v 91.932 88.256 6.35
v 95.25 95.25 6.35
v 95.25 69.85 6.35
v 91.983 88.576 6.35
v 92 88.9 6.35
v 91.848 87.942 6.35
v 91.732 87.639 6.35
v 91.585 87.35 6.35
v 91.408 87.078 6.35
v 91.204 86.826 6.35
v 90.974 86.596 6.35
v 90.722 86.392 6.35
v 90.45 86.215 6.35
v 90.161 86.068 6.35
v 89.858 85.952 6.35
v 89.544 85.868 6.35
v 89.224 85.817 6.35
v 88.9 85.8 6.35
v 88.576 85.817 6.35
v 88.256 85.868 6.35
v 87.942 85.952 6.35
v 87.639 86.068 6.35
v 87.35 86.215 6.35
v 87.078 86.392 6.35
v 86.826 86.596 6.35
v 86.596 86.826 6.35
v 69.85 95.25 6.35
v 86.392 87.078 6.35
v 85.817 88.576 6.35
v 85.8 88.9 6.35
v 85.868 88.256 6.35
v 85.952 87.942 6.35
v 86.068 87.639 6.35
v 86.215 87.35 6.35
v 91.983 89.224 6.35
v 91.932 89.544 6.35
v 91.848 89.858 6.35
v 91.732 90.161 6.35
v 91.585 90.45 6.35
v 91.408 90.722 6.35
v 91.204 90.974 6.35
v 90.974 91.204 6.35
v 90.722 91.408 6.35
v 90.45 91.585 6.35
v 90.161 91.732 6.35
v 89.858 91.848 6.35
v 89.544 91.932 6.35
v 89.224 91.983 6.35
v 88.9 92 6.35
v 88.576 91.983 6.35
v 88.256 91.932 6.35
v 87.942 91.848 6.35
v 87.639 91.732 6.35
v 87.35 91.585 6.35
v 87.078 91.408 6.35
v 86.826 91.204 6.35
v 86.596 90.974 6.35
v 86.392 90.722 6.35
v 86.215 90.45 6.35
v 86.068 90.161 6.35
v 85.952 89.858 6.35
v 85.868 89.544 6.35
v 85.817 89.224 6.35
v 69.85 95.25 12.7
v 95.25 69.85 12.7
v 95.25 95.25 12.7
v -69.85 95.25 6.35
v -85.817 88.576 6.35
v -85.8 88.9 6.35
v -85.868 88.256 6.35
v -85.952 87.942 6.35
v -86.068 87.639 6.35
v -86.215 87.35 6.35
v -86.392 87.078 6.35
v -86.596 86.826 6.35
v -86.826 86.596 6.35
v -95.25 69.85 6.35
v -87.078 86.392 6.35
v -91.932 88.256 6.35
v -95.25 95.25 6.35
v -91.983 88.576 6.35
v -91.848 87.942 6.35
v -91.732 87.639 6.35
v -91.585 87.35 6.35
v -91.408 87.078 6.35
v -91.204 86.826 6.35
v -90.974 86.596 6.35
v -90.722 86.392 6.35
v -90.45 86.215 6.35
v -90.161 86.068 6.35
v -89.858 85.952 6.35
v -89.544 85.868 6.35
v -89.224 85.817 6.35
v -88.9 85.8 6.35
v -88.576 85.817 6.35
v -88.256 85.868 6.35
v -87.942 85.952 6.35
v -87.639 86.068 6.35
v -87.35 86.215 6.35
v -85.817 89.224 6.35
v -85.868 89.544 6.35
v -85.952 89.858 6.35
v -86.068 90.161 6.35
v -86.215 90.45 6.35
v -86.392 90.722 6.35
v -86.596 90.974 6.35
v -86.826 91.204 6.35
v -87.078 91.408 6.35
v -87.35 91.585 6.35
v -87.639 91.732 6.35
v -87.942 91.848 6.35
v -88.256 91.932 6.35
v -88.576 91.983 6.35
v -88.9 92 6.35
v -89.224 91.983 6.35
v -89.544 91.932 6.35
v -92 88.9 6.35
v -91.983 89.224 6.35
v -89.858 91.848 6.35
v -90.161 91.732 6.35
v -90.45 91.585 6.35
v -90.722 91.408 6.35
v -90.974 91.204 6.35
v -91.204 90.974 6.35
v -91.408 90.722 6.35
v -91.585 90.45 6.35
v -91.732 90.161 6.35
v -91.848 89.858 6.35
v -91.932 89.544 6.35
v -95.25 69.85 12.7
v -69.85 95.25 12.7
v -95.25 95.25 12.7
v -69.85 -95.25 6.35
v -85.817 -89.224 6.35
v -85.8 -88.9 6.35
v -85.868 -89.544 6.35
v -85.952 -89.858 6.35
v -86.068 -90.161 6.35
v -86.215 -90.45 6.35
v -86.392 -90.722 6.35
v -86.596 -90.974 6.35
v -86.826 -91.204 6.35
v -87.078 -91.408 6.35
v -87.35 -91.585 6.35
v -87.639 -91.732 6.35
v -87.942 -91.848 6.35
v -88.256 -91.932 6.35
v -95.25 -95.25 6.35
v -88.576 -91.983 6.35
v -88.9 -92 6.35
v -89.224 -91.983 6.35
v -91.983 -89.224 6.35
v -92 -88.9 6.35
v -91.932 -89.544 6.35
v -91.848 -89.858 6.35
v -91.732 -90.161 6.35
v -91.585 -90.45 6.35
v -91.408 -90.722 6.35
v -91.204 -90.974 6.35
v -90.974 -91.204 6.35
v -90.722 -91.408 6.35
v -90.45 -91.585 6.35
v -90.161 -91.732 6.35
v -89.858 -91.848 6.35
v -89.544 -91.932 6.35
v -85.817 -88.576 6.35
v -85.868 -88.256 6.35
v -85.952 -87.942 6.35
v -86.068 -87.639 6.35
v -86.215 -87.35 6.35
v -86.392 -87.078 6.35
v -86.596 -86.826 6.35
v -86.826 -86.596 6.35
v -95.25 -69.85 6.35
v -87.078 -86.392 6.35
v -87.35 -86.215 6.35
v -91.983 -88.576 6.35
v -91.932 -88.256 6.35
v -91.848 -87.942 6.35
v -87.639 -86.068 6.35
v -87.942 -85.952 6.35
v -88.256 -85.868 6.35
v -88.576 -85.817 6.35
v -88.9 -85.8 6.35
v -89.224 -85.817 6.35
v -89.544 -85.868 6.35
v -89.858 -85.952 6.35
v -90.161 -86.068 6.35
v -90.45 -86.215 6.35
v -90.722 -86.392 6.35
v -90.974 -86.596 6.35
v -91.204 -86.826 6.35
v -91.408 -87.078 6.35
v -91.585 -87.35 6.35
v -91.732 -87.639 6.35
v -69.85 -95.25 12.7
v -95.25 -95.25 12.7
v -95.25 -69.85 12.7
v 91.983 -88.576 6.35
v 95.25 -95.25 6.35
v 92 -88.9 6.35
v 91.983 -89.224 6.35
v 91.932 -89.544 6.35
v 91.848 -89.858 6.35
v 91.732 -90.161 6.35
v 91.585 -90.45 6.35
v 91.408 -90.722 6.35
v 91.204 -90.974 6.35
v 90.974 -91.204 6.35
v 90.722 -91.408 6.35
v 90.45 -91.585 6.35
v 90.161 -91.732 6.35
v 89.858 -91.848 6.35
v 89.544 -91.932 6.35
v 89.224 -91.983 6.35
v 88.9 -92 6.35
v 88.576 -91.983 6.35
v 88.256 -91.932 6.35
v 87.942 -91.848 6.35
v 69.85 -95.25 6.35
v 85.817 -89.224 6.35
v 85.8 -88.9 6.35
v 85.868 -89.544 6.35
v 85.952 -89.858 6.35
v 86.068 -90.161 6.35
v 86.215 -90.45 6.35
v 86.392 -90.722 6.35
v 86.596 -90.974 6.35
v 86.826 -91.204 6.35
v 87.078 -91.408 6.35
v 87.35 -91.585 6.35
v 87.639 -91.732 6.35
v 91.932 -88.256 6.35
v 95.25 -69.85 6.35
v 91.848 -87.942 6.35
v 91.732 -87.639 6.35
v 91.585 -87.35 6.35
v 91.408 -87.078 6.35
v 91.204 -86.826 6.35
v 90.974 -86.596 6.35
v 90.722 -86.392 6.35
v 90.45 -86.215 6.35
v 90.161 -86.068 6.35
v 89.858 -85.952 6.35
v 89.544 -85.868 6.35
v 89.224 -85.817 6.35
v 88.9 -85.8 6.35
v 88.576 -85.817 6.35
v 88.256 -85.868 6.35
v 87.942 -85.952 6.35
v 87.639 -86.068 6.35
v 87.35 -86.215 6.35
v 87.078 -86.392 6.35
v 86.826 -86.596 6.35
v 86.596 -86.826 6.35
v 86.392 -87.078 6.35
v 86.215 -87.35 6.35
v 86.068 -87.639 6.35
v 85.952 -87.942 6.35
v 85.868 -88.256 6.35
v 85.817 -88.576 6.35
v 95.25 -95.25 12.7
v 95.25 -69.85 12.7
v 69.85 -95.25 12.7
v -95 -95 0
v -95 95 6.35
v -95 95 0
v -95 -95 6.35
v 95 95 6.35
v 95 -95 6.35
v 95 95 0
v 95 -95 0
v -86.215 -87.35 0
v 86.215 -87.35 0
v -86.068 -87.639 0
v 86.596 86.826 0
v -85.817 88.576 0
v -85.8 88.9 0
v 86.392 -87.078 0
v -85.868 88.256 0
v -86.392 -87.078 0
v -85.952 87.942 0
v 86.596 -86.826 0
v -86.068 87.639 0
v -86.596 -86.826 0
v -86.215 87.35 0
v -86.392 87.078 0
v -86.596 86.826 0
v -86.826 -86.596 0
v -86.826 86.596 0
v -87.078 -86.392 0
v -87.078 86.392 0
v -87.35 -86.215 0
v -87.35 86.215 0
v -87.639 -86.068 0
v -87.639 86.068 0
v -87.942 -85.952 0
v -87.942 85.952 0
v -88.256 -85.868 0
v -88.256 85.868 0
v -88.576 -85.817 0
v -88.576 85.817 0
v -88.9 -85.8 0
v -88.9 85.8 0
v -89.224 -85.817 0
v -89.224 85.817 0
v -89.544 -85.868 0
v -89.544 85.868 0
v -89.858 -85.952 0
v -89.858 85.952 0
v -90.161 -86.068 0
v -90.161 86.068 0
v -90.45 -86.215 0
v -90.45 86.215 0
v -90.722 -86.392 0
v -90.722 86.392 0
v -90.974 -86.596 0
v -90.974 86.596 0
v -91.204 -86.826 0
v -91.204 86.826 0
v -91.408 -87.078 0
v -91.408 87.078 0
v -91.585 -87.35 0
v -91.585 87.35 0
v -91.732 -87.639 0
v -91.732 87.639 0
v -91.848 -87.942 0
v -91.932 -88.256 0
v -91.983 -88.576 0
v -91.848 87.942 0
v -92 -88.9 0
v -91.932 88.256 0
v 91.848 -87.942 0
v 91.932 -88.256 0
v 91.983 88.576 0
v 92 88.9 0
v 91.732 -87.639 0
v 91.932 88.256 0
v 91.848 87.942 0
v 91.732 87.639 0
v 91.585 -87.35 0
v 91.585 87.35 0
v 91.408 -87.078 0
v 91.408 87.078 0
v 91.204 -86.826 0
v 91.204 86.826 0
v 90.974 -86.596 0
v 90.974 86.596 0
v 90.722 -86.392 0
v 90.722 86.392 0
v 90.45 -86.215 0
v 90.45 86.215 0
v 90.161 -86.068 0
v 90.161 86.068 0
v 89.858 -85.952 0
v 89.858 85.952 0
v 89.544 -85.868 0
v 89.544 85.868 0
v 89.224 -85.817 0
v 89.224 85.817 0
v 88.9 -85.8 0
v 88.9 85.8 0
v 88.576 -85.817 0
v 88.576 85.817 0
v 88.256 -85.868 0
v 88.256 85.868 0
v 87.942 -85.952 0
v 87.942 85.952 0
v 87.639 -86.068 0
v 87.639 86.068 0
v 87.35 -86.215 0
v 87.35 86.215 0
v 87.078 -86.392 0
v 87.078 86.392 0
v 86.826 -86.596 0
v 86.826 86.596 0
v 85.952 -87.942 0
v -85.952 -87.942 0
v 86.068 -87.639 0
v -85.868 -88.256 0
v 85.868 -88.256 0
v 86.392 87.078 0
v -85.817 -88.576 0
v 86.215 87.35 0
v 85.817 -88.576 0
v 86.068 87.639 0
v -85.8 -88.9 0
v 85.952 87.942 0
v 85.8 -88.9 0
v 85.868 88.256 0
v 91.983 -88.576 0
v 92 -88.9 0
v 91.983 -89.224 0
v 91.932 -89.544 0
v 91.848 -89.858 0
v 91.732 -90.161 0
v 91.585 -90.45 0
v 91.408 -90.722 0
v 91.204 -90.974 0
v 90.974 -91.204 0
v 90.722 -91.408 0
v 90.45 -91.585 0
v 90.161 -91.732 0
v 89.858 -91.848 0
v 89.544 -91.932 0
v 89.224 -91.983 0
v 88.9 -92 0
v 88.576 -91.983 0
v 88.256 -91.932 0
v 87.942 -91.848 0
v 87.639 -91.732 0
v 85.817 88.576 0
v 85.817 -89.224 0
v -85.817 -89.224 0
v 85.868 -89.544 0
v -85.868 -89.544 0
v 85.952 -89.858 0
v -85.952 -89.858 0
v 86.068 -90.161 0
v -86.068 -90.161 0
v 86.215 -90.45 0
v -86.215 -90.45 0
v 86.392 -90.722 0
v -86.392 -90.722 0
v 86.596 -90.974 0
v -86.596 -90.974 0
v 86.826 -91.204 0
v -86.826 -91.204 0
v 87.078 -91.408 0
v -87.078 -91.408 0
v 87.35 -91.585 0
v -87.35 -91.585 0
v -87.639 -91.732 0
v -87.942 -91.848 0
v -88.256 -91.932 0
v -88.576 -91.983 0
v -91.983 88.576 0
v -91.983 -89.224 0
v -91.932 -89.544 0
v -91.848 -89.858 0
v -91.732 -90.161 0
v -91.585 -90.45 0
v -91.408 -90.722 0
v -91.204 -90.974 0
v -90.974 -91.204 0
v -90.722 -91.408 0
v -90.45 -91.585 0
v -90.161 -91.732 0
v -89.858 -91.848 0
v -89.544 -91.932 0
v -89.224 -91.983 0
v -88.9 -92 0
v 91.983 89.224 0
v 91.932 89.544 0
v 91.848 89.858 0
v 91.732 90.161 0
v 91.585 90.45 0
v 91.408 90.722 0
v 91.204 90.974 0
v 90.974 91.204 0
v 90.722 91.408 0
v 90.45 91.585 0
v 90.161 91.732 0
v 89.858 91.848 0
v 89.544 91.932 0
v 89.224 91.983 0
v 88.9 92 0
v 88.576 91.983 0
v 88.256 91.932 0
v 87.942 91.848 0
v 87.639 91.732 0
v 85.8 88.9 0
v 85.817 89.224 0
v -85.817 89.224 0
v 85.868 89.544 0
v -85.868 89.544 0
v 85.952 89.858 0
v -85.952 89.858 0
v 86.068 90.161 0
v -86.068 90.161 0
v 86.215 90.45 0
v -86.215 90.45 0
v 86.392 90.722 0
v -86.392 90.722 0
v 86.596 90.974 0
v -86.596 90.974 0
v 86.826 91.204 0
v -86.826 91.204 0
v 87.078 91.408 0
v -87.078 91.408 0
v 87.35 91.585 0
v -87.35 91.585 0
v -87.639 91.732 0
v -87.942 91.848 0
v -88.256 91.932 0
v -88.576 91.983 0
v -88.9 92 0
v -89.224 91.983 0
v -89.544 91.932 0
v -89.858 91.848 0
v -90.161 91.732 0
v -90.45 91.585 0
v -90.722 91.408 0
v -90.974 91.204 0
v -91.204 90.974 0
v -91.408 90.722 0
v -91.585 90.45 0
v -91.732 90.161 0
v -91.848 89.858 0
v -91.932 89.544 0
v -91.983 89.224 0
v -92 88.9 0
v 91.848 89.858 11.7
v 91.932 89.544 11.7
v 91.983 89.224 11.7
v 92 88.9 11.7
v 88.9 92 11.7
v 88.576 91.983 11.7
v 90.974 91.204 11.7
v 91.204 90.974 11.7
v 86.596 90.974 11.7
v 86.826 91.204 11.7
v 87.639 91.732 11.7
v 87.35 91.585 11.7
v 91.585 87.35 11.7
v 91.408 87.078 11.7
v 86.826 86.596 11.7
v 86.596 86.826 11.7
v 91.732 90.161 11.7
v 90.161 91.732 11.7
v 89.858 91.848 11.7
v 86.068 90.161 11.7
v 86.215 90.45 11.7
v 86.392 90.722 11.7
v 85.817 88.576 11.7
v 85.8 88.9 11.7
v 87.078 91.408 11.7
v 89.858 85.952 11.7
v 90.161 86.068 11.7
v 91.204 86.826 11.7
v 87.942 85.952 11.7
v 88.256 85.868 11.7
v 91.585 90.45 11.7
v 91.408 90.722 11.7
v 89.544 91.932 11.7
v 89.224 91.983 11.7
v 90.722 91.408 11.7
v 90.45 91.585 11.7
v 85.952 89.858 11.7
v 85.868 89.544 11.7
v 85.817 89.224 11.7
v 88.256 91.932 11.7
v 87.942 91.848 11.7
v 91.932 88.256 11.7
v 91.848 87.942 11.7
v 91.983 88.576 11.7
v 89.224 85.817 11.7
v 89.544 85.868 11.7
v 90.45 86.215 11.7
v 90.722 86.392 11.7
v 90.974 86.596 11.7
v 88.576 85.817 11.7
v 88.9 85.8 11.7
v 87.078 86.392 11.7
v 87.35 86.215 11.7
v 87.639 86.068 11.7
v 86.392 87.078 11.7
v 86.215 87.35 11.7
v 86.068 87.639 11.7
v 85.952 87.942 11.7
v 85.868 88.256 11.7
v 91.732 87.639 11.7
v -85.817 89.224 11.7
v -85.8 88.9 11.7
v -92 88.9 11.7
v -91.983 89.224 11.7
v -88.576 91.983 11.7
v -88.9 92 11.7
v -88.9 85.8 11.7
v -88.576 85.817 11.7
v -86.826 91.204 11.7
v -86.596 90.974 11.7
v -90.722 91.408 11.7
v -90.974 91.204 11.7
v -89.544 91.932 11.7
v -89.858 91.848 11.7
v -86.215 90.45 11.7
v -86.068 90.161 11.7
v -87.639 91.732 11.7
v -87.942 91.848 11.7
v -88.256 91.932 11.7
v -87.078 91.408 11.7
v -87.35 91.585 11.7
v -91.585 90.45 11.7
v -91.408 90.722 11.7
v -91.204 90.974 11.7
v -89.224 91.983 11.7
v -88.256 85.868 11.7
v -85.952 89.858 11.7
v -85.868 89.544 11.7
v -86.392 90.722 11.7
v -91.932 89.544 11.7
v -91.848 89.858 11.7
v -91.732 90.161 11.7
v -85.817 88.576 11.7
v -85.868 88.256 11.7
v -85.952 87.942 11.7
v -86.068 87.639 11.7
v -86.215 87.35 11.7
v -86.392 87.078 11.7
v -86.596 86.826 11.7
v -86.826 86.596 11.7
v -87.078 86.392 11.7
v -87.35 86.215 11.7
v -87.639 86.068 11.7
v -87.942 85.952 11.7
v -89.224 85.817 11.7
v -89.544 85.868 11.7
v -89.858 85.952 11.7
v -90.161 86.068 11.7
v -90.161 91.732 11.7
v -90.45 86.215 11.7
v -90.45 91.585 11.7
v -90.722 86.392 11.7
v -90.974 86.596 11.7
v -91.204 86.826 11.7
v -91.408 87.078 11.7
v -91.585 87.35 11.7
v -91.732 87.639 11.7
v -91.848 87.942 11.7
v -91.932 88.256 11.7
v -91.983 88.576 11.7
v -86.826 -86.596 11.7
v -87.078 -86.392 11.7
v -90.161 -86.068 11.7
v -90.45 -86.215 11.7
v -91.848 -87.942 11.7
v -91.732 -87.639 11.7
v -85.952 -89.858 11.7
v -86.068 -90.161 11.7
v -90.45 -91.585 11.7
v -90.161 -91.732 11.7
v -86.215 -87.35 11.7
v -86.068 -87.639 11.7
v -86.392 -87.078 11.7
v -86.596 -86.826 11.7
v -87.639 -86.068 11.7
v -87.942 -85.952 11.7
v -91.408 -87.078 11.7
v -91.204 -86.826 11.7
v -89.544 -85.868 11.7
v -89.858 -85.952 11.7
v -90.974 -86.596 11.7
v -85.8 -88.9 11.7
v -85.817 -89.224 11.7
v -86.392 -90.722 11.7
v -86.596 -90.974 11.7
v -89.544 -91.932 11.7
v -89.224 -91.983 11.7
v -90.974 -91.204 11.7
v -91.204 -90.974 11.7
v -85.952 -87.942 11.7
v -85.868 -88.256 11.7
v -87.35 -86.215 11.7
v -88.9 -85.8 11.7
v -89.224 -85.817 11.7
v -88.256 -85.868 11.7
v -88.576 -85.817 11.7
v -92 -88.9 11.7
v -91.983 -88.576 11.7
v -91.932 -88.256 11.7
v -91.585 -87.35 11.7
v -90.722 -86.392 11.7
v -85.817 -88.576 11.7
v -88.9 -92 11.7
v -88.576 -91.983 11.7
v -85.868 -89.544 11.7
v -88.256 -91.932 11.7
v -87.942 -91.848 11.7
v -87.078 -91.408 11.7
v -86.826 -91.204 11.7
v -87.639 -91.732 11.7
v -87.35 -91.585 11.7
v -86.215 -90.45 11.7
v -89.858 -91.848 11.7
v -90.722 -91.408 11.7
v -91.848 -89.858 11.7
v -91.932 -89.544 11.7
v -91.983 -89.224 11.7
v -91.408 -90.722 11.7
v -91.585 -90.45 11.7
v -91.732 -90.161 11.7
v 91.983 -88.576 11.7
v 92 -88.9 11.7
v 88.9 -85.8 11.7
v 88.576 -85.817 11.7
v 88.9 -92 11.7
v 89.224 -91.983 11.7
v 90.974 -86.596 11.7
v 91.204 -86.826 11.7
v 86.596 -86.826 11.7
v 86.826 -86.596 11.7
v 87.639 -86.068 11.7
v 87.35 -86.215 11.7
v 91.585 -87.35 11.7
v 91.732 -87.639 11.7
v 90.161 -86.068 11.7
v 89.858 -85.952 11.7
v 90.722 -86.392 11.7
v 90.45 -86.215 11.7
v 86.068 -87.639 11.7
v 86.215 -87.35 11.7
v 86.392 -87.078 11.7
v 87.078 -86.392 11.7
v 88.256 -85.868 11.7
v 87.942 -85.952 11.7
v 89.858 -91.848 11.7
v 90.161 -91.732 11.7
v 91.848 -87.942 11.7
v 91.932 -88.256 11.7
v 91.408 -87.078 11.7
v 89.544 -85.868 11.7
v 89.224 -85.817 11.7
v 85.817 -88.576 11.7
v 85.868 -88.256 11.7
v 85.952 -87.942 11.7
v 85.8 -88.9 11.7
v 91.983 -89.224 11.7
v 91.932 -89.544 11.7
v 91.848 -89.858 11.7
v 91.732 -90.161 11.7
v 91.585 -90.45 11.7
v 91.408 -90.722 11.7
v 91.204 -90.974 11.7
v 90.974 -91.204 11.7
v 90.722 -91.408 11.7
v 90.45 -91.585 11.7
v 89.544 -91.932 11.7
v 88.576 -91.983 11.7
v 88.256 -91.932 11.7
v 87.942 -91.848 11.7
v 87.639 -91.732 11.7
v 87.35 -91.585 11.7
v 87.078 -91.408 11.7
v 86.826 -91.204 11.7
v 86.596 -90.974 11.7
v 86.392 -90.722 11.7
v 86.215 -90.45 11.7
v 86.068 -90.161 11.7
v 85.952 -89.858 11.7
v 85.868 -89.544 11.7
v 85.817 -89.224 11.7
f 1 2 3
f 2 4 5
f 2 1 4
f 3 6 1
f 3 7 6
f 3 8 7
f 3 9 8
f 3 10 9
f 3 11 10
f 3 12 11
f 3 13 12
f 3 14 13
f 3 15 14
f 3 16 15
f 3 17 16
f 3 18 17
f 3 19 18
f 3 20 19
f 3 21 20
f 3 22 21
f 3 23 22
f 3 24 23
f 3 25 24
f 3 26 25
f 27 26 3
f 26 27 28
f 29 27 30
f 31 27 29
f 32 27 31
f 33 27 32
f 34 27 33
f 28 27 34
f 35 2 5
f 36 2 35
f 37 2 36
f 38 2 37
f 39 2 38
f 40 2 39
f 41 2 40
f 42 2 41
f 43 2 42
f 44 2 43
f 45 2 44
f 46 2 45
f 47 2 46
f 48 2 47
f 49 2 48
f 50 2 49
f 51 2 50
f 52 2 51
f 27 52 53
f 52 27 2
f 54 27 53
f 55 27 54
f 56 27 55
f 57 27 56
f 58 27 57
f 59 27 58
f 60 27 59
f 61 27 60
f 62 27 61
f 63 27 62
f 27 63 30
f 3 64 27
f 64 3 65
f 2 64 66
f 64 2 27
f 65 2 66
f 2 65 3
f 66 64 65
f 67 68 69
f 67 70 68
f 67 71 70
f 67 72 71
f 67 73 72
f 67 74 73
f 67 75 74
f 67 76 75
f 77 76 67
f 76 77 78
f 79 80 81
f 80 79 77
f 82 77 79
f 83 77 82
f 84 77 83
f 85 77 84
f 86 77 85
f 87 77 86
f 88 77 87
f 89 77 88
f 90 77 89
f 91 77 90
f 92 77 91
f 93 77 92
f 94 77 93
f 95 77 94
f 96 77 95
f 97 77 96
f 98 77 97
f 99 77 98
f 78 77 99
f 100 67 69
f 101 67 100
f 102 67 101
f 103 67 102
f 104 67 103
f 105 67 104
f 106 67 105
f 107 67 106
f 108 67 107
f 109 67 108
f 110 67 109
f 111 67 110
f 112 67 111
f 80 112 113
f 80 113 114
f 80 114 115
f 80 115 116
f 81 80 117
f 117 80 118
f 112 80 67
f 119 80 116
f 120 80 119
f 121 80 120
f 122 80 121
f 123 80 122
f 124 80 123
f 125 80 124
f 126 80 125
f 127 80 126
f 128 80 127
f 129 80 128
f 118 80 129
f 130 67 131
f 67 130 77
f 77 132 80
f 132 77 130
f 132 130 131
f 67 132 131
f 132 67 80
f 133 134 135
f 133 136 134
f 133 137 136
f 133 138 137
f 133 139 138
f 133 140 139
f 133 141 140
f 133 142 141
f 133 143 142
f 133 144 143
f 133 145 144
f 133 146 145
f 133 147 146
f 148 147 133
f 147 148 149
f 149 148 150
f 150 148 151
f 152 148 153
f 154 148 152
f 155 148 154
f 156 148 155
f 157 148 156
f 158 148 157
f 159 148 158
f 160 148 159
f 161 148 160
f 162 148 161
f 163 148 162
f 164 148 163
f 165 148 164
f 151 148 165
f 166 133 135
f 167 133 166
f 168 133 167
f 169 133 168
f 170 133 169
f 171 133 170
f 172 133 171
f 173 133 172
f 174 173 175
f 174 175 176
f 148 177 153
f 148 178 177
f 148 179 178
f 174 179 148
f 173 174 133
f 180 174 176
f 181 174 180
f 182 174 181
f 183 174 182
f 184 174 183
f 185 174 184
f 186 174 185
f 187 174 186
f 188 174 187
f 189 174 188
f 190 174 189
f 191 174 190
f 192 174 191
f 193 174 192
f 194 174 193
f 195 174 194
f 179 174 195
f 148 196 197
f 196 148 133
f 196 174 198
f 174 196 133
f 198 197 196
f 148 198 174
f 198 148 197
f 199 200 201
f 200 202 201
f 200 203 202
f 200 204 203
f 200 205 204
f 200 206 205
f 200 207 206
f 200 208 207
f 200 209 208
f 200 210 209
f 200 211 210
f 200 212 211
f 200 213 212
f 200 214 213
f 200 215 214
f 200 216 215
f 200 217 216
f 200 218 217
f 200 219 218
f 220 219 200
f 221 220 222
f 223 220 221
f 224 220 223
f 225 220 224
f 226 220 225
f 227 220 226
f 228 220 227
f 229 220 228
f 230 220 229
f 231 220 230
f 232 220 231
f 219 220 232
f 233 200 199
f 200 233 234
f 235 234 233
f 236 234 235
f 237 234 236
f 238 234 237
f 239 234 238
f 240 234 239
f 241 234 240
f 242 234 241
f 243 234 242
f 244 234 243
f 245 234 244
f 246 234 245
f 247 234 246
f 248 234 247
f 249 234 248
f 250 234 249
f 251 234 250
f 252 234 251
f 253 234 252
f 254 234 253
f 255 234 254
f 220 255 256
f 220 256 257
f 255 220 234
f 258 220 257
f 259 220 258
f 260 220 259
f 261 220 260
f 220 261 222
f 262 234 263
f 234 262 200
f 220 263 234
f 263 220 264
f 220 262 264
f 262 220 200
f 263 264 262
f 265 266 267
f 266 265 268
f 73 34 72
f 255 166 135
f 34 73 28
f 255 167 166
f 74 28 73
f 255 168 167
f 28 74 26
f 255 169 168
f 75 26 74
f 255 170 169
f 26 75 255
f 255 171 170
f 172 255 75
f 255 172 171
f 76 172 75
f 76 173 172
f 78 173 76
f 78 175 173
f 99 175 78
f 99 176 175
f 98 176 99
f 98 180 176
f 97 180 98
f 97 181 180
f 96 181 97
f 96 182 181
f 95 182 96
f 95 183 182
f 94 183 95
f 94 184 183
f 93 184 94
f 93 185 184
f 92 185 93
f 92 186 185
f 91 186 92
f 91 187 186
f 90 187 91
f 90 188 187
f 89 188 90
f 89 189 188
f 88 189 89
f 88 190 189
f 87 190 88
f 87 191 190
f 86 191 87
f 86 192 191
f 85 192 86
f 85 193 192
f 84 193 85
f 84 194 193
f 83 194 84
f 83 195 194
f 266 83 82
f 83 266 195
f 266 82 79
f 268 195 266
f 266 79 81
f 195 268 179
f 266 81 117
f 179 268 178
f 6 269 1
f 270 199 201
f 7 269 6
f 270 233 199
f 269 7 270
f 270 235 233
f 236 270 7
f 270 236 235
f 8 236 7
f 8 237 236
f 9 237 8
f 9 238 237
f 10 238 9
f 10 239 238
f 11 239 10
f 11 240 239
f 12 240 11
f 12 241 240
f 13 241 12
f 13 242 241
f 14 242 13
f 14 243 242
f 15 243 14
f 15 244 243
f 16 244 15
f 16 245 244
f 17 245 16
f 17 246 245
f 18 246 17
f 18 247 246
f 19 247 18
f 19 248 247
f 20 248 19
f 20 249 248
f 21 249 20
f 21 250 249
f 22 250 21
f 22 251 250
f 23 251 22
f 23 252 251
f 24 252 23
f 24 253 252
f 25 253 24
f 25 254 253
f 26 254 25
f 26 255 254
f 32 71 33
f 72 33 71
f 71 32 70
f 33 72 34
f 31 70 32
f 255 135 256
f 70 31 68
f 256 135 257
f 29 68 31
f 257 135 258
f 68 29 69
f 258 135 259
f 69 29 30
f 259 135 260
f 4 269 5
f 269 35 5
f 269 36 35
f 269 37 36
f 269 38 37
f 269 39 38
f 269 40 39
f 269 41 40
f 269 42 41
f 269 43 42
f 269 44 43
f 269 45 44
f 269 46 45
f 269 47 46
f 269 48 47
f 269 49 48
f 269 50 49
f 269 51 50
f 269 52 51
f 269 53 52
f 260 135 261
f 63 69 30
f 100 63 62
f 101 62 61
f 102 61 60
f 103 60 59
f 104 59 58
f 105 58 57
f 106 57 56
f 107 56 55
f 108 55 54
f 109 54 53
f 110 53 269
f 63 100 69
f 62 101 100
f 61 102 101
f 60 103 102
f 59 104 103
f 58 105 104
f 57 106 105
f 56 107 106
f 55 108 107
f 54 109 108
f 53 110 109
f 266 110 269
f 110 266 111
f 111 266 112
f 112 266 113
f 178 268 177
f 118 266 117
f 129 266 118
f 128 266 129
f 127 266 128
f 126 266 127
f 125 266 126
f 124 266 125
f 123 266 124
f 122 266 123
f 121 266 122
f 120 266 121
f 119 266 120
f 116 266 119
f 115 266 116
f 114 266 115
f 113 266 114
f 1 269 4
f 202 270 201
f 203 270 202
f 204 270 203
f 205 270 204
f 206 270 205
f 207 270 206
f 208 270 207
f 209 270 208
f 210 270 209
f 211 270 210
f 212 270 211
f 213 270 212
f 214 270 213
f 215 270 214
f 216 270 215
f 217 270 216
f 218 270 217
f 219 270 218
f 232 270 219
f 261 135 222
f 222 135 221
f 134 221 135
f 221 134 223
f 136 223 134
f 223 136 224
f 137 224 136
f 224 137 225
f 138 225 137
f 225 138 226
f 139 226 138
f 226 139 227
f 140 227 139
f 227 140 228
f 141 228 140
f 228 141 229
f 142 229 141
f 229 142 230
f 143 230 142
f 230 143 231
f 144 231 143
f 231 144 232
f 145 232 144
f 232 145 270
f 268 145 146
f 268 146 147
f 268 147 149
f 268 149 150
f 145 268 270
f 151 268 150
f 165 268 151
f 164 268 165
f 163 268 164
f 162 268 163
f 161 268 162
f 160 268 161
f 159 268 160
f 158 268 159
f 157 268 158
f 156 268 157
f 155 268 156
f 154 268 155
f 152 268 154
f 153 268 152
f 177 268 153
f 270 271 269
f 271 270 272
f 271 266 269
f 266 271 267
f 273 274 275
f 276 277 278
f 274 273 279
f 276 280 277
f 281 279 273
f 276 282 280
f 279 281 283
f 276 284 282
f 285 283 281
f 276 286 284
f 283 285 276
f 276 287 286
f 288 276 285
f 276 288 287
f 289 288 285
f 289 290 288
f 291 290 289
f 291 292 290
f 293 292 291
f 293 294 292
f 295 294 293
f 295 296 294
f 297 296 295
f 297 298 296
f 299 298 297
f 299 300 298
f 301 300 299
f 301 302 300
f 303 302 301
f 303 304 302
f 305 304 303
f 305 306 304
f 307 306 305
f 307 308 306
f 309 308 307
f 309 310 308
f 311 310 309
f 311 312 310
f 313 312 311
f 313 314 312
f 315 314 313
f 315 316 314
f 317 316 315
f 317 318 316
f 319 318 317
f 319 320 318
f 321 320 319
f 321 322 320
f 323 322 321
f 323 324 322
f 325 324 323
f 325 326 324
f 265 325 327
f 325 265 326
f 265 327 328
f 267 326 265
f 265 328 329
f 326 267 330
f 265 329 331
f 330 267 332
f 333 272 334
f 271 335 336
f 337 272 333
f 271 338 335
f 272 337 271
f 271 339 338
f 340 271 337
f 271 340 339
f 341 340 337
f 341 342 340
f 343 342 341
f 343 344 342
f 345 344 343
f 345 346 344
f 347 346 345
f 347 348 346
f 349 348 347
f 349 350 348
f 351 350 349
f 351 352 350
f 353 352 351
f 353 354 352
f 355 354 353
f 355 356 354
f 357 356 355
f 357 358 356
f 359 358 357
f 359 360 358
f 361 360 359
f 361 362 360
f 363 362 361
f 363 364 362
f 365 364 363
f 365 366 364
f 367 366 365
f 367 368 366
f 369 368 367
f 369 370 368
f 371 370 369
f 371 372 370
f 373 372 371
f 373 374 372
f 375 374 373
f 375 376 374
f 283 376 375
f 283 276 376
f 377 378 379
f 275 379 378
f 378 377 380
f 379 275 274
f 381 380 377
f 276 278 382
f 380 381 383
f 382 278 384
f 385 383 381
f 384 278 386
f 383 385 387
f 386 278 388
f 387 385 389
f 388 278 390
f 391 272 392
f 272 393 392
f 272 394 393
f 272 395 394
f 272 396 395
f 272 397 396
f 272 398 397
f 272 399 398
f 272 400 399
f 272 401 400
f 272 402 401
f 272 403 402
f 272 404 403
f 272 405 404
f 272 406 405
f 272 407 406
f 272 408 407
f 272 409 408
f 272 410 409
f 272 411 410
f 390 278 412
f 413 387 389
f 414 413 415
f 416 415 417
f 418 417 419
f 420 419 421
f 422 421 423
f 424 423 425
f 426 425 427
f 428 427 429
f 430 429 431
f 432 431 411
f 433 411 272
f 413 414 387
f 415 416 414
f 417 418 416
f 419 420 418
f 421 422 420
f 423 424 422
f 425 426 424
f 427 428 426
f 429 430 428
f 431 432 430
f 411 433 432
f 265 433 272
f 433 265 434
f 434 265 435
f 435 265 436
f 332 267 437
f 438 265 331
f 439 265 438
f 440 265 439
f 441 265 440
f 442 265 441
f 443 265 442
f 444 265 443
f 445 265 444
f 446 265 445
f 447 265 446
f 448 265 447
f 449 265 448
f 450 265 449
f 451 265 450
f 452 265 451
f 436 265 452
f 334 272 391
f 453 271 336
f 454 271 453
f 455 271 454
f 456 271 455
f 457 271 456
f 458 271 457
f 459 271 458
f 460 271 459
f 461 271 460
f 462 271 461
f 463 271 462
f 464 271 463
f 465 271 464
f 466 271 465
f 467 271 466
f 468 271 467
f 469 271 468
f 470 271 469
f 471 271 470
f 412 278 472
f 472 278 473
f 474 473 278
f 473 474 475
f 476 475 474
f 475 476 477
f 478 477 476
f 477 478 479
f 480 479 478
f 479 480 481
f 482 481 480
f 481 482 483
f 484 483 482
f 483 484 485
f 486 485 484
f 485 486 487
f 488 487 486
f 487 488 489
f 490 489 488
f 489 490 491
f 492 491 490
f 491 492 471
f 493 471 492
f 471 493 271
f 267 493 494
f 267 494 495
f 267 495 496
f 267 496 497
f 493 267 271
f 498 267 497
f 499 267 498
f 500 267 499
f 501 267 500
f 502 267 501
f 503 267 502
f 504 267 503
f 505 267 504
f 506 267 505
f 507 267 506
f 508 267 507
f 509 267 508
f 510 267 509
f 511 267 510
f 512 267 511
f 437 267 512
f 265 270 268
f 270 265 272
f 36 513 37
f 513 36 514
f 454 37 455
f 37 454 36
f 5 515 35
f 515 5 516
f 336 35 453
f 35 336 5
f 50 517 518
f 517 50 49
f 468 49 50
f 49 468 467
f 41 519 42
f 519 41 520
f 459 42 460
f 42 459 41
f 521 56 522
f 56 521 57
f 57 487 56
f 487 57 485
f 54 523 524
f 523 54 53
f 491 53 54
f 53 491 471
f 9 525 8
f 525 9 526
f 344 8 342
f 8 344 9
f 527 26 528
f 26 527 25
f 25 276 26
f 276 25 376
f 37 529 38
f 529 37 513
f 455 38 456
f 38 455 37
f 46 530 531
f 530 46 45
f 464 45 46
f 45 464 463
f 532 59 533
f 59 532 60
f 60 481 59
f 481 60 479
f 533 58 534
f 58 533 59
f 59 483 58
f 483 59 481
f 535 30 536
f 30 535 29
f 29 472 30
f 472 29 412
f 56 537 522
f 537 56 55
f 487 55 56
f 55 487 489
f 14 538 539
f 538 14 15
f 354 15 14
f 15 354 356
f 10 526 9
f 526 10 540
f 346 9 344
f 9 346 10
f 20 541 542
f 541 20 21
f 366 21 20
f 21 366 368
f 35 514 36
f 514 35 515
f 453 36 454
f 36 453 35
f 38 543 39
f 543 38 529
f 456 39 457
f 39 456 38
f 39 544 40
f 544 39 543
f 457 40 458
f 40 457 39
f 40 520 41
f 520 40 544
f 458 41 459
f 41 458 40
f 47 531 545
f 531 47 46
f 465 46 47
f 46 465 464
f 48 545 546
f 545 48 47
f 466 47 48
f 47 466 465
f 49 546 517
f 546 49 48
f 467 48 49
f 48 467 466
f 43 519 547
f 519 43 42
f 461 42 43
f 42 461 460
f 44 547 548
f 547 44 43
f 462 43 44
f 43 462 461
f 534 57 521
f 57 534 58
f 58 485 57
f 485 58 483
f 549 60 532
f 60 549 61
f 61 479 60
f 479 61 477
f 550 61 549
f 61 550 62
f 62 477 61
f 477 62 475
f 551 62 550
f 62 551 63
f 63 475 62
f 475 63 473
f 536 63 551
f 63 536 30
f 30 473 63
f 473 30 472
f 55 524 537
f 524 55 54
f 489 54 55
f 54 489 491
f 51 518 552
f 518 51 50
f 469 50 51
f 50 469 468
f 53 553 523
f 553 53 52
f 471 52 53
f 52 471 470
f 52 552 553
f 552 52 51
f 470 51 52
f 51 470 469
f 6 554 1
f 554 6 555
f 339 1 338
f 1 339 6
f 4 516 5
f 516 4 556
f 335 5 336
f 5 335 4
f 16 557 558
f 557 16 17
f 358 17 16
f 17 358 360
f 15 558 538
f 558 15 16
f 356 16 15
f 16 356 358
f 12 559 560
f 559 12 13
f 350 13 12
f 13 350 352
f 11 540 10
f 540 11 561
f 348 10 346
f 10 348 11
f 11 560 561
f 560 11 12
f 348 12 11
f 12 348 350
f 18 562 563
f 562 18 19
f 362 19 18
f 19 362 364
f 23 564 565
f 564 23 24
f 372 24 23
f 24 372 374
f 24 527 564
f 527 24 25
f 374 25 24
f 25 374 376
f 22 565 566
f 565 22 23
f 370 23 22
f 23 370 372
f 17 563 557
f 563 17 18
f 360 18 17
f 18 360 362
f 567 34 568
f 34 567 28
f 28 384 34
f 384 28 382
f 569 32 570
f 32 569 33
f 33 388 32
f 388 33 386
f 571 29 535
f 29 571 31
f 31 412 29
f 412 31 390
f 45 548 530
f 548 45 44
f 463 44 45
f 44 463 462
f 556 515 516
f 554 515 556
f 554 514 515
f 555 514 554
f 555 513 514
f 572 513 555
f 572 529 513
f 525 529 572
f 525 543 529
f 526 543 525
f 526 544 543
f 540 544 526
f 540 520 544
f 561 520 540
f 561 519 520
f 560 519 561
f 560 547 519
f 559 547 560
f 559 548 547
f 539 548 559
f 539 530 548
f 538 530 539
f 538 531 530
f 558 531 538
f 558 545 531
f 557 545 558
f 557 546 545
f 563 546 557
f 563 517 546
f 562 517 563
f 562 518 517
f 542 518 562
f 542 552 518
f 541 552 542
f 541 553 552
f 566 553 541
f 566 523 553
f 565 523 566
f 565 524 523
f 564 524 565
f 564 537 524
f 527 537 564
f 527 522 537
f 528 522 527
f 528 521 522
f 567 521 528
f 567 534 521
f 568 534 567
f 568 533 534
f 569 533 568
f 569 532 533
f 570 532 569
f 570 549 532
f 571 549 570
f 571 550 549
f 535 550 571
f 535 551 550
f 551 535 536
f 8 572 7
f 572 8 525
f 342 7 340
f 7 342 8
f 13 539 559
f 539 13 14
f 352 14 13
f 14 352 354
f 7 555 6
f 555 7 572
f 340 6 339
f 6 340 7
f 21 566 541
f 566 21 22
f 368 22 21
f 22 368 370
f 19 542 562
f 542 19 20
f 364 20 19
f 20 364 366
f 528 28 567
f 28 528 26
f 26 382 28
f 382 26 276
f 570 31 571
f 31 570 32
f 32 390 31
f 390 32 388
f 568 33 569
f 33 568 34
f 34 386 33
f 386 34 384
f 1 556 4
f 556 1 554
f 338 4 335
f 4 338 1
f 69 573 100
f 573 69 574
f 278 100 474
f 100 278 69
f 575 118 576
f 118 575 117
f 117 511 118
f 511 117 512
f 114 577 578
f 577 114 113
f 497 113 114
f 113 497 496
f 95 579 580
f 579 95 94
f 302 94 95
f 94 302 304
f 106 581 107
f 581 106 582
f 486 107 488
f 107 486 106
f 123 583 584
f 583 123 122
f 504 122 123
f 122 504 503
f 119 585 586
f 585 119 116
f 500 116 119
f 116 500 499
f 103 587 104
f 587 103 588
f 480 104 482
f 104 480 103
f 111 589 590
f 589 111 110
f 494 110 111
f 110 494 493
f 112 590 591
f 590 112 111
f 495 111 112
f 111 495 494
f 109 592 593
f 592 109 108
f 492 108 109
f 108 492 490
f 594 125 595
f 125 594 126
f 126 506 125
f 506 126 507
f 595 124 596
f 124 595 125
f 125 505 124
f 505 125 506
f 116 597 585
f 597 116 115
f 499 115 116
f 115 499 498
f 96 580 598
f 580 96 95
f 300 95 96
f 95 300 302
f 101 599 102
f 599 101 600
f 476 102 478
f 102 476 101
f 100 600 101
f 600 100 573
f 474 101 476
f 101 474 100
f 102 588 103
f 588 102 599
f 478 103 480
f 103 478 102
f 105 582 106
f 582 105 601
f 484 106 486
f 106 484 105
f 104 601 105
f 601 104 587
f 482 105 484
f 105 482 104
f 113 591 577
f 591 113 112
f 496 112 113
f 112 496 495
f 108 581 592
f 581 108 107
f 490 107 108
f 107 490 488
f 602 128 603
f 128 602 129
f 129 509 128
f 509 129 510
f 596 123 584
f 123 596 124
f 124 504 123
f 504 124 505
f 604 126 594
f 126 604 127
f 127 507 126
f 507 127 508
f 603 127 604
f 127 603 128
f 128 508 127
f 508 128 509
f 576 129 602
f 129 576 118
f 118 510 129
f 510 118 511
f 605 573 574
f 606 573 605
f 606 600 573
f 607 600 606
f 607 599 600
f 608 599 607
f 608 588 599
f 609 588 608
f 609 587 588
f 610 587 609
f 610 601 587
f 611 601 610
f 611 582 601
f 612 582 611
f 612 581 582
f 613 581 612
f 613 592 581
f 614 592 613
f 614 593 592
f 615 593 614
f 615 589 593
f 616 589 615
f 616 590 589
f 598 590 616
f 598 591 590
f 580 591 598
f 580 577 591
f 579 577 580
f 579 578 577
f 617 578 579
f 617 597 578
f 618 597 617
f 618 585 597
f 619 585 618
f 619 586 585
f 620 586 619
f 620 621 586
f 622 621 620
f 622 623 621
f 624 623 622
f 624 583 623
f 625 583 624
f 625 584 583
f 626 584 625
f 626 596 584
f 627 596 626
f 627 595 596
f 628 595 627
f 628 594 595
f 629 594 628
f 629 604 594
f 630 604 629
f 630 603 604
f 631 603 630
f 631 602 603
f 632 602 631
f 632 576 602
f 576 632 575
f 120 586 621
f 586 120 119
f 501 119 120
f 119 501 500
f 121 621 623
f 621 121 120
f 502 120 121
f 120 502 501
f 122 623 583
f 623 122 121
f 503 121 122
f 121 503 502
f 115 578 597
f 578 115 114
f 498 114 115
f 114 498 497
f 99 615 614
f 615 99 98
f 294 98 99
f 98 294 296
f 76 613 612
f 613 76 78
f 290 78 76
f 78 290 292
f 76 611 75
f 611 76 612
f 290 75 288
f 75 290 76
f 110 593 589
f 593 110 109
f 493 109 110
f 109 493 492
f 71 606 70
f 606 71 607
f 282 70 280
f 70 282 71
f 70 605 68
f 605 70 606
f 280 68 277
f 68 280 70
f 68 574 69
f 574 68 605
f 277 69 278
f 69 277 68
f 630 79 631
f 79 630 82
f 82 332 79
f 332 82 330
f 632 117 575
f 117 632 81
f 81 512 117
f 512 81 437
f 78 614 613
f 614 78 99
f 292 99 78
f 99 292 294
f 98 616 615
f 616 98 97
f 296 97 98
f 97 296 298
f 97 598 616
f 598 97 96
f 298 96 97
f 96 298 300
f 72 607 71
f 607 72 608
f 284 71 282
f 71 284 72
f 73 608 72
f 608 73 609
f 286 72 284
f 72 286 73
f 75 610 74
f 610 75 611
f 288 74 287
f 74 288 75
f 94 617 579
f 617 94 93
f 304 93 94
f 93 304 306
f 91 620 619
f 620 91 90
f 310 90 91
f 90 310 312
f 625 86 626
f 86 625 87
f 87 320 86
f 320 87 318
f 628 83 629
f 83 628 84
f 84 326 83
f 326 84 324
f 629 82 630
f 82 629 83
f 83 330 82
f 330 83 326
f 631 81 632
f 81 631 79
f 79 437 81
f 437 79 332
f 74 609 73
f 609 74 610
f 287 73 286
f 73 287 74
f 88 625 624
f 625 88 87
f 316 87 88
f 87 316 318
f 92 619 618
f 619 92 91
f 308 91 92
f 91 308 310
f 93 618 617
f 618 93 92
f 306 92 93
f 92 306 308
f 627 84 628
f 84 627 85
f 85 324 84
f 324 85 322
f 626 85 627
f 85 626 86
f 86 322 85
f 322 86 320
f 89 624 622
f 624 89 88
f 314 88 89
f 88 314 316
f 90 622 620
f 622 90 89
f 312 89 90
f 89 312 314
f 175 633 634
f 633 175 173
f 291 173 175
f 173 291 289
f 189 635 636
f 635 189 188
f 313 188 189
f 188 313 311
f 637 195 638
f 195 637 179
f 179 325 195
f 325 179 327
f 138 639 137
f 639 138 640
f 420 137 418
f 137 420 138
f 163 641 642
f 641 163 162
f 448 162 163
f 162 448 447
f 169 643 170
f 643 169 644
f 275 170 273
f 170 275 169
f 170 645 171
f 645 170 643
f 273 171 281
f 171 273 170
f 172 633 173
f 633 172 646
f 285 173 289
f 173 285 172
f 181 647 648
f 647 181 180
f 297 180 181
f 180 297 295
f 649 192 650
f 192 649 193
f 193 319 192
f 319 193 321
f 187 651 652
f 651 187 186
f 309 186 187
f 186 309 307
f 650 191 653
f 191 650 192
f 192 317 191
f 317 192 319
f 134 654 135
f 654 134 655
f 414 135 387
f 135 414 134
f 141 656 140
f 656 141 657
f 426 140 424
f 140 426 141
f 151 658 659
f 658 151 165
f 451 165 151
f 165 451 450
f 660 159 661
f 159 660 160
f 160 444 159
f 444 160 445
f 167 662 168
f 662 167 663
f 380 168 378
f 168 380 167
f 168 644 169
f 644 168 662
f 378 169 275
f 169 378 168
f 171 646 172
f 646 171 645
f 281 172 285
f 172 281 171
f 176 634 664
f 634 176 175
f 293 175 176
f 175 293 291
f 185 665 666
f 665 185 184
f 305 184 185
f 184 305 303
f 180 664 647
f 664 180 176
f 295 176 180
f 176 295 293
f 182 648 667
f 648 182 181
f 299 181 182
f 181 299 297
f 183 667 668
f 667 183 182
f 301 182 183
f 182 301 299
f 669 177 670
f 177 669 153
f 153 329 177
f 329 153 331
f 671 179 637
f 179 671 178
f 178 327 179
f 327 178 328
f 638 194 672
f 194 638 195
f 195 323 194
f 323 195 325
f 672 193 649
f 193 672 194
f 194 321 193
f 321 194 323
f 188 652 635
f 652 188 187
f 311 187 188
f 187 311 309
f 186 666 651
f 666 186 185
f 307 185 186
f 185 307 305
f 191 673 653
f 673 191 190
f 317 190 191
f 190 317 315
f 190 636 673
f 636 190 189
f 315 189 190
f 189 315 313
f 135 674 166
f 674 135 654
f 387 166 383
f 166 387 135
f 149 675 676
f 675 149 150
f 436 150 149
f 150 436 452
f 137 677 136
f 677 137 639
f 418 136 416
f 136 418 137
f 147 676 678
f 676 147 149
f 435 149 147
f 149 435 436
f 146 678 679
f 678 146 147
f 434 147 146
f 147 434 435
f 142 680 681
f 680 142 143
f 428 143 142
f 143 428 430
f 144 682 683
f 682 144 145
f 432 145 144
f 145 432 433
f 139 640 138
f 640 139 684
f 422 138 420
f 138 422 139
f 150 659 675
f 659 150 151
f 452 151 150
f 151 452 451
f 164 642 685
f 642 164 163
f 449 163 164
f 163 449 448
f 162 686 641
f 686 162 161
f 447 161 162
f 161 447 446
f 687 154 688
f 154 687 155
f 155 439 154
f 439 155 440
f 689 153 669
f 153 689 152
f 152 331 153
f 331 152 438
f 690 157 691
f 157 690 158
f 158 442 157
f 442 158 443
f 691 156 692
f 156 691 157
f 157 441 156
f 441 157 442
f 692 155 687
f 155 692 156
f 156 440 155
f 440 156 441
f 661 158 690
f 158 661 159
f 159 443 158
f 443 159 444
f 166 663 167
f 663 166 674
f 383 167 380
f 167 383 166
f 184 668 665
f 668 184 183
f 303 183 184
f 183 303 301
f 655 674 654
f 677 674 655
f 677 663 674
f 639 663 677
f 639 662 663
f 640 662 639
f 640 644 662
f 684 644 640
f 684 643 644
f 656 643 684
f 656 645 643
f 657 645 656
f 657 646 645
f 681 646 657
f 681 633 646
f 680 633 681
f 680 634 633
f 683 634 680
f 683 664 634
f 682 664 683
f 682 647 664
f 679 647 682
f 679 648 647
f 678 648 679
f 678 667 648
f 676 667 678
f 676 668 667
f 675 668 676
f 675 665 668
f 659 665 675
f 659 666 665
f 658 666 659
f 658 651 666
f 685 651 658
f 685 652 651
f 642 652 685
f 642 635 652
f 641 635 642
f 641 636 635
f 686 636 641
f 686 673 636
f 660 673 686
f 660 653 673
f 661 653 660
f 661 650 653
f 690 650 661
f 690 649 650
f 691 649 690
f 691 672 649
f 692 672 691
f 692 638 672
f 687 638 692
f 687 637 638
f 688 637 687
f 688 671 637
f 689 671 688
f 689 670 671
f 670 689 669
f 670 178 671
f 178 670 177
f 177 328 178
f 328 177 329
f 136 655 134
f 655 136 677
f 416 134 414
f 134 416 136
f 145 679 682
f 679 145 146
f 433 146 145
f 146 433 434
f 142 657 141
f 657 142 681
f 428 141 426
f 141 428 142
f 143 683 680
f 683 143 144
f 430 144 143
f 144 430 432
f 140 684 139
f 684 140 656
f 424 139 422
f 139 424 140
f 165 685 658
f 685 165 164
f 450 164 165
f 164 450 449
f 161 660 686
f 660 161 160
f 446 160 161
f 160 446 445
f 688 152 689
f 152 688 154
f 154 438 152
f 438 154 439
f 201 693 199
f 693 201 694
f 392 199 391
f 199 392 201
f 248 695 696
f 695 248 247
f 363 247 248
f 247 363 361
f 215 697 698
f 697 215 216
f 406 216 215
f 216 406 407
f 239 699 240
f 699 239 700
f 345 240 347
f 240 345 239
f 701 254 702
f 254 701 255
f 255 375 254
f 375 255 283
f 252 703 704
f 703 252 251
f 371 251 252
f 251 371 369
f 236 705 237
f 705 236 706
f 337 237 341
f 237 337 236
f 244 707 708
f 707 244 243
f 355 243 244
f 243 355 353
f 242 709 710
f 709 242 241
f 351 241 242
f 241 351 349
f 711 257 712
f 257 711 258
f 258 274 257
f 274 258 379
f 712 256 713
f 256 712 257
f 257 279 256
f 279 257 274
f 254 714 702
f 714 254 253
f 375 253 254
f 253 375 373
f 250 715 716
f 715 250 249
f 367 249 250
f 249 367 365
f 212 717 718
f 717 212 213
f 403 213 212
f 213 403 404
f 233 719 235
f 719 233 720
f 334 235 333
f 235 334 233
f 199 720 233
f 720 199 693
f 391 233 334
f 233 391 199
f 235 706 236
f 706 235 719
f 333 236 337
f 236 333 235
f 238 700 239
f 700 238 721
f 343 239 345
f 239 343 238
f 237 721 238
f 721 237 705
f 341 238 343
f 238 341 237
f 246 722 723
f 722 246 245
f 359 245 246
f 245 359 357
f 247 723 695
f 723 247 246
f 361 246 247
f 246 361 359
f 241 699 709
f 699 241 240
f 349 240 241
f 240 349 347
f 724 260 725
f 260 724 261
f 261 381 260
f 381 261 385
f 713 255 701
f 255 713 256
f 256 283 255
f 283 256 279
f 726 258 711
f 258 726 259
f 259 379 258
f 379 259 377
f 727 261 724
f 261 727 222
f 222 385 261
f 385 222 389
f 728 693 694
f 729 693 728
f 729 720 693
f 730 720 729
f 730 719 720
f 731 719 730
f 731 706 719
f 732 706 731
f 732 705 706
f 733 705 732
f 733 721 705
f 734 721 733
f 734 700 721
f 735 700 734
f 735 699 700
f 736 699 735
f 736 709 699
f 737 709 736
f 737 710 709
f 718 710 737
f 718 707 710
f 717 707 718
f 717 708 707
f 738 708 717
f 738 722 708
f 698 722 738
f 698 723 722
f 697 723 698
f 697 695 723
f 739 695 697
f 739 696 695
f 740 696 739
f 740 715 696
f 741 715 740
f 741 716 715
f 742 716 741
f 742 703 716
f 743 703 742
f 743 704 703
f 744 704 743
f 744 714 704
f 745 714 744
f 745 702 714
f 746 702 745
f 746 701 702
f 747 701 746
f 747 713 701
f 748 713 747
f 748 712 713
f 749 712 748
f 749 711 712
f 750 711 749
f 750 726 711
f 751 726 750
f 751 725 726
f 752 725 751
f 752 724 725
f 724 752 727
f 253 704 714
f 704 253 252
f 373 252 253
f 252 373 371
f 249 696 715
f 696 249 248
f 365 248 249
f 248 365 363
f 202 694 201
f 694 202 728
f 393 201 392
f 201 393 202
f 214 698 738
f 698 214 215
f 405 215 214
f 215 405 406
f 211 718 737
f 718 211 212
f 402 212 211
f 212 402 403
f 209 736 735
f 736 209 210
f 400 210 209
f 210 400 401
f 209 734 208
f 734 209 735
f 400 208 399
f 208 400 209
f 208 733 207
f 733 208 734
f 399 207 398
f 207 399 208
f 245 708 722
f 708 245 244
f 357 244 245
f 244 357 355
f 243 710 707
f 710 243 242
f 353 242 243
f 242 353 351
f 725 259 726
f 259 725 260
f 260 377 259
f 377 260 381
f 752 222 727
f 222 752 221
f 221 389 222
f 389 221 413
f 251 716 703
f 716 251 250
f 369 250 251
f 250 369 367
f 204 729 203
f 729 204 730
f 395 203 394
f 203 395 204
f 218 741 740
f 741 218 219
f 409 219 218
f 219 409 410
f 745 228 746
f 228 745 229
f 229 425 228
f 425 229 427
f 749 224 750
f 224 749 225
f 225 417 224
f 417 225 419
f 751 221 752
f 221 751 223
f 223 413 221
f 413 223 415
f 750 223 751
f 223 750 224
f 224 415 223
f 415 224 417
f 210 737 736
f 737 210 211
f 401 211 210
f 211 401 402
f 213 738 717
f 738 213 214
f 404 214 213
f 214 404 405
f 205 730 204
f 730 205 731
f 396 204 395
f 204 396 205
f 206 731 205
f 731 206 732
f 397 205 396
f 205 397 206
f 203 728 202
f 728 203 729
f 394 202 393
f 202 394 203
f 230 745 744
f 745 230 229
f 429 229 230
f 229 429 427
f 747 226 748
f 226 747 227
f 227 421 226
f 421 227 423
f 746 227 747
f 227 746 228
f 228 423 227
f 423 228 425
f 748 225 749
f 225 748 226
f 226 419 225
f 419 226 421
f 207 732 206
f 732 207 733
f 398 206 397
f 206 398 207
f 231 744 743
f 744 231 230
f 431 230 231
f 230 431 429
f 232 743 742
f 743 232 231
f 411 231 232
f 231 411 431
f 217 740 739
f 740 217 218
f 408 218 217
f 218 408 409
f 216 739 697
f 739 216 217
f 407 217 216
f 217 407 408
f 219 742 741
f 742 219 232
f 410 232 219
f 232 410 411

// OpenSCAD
// All-Seeing Eye - Base Plate
// Version: 1.0 (Corresponds to Shell v1.6)

/* [Global Dimensions] */
INCH = 25.4;

base_width = 8.0 * INCH;
plate_thickness = 0.25 * INCH;
wall_thickness = 0.25 * INCH;

// Alignment Tabs
tab_height = 0.25 * INCH; // Stacks on top of plate
total_height = plate_thickness + tab_height;

// Magnet logic
magnet_diam = 6.2; // 6mm + tolerance
magnet_load_depth = total_height - 1.0; // Hole depth from bottom, leaving 1mm bridge at top

/* [Rendering] */
$fn = 60;

module base_plate_main() {
    
    // Fit tolerance
    tol = 0.5; // mm gap total (0.25 per side)
    
    plate_w = base_width - 2*wall_thickness - tol;
    
    difference() {
        // 1. Positive Volume
        union() {
            // A. Base Plate (Fits INSIDE the shell walls)
            translate([0, 0, plate_thickness/2])
                cube([plate_w, plate_w, plate_thickness], center=true);
            
            // B. Alignment Tabs (Corner Triangles)
            // They sit on top of the plate (starts at z = plate_thickness)
            translate([0, 0, plate_thickness])
                alignment_tabs();
        }

        // 2. Negative Volume (Magnet Holes)
        // Access from BOTTOM (z=0)
        magnet_holes();
    }
}

module alignment_tabs() {
    // Generate 4 corner triangles
    // They fit INSIDE the shell walls.
    // The plate is ALREADY inside the walls. 
    // So the tabs are flush with the plate corners?
    // Let's keep them aligned to the same coordinate system.
    
    offset_dist = base_width/2 - wall_thickness; // Corner of the inner void
    
    // Triangle size: Fill the corner? 
    // Let's make them 1 inch legs for stability
    tri_leg = 1.0 * INCH;
    
    // Corner 1 (+X, +Y)
    translate([offset_dist, offset_dist, 0]) rotate([0,0,180]) corner_triangle(tri_leg, tab_height);
    
    // Corner 2 (-X, +Y)
    translate([-offset_dist, offset_dist, 0]) rotate([0,0,-90]) corner_triangle(tri_leg, tab_height);
    
    // Corner 3 (-X, -Y)
    translate([-offset_dist, -offset_dist, 0]) rotate([0,0,0]) corner_triangle(tri_leg, tab_height);
    
    // Corner 4 (+X, -Y)
    translate([offset_dist, -offset_dist, 0]) rotate([0,0,90]) corner_triangle(tri_leg, tab_height);
}

module corner_triangle(leg, h) {
    // Right isosceles triangle in the corner
    linear_extrude(h) {
        polygon([
            [0,0], 
            [leg, 0], 
            [0, leg]
        ]);
    }
}

module magnet_holes() {
    // Positions must match the center of mass of the triangles or close to the corner
    offset_dist = base_width/2 - wall_thickness; 
    tri_leg = 1.0 * INCH;
    
    // Magnet position: centered in the triangle's bulk?
    // Let's place it at (leg/3, leg/3) from the inner corner (Center of mass of triangle is 1/3)
    // Actually, closer to corner is better for snapping. Let's do 0.25 inch from corner.
    mag_offset = 0.25 * INCH;
    
    // Calculate global positions relative to center
    // Inner corner is at +/- offset_dist
    // We want to move 'inward' by mag_offset
    
    px = offset_dist - mag_offset;
    py = offset_dist - mag_offset;
    
    hole_depth = magnet_load_depth;
    
    positions = [
        [px, py],   // Top Right
        [-px, py],  // Top Left
        [-px, -py], // Bottom Left
        [px, -py]   // Bottom Right
    ];
    
    for(pos = positions) {
        translate([pos[0], pos[1], -0.1])
            cylinder(h = hole_depth + 0.1, d = magnet_diam); // +0.1 for clean cut
    }
}

base_plate_main();
